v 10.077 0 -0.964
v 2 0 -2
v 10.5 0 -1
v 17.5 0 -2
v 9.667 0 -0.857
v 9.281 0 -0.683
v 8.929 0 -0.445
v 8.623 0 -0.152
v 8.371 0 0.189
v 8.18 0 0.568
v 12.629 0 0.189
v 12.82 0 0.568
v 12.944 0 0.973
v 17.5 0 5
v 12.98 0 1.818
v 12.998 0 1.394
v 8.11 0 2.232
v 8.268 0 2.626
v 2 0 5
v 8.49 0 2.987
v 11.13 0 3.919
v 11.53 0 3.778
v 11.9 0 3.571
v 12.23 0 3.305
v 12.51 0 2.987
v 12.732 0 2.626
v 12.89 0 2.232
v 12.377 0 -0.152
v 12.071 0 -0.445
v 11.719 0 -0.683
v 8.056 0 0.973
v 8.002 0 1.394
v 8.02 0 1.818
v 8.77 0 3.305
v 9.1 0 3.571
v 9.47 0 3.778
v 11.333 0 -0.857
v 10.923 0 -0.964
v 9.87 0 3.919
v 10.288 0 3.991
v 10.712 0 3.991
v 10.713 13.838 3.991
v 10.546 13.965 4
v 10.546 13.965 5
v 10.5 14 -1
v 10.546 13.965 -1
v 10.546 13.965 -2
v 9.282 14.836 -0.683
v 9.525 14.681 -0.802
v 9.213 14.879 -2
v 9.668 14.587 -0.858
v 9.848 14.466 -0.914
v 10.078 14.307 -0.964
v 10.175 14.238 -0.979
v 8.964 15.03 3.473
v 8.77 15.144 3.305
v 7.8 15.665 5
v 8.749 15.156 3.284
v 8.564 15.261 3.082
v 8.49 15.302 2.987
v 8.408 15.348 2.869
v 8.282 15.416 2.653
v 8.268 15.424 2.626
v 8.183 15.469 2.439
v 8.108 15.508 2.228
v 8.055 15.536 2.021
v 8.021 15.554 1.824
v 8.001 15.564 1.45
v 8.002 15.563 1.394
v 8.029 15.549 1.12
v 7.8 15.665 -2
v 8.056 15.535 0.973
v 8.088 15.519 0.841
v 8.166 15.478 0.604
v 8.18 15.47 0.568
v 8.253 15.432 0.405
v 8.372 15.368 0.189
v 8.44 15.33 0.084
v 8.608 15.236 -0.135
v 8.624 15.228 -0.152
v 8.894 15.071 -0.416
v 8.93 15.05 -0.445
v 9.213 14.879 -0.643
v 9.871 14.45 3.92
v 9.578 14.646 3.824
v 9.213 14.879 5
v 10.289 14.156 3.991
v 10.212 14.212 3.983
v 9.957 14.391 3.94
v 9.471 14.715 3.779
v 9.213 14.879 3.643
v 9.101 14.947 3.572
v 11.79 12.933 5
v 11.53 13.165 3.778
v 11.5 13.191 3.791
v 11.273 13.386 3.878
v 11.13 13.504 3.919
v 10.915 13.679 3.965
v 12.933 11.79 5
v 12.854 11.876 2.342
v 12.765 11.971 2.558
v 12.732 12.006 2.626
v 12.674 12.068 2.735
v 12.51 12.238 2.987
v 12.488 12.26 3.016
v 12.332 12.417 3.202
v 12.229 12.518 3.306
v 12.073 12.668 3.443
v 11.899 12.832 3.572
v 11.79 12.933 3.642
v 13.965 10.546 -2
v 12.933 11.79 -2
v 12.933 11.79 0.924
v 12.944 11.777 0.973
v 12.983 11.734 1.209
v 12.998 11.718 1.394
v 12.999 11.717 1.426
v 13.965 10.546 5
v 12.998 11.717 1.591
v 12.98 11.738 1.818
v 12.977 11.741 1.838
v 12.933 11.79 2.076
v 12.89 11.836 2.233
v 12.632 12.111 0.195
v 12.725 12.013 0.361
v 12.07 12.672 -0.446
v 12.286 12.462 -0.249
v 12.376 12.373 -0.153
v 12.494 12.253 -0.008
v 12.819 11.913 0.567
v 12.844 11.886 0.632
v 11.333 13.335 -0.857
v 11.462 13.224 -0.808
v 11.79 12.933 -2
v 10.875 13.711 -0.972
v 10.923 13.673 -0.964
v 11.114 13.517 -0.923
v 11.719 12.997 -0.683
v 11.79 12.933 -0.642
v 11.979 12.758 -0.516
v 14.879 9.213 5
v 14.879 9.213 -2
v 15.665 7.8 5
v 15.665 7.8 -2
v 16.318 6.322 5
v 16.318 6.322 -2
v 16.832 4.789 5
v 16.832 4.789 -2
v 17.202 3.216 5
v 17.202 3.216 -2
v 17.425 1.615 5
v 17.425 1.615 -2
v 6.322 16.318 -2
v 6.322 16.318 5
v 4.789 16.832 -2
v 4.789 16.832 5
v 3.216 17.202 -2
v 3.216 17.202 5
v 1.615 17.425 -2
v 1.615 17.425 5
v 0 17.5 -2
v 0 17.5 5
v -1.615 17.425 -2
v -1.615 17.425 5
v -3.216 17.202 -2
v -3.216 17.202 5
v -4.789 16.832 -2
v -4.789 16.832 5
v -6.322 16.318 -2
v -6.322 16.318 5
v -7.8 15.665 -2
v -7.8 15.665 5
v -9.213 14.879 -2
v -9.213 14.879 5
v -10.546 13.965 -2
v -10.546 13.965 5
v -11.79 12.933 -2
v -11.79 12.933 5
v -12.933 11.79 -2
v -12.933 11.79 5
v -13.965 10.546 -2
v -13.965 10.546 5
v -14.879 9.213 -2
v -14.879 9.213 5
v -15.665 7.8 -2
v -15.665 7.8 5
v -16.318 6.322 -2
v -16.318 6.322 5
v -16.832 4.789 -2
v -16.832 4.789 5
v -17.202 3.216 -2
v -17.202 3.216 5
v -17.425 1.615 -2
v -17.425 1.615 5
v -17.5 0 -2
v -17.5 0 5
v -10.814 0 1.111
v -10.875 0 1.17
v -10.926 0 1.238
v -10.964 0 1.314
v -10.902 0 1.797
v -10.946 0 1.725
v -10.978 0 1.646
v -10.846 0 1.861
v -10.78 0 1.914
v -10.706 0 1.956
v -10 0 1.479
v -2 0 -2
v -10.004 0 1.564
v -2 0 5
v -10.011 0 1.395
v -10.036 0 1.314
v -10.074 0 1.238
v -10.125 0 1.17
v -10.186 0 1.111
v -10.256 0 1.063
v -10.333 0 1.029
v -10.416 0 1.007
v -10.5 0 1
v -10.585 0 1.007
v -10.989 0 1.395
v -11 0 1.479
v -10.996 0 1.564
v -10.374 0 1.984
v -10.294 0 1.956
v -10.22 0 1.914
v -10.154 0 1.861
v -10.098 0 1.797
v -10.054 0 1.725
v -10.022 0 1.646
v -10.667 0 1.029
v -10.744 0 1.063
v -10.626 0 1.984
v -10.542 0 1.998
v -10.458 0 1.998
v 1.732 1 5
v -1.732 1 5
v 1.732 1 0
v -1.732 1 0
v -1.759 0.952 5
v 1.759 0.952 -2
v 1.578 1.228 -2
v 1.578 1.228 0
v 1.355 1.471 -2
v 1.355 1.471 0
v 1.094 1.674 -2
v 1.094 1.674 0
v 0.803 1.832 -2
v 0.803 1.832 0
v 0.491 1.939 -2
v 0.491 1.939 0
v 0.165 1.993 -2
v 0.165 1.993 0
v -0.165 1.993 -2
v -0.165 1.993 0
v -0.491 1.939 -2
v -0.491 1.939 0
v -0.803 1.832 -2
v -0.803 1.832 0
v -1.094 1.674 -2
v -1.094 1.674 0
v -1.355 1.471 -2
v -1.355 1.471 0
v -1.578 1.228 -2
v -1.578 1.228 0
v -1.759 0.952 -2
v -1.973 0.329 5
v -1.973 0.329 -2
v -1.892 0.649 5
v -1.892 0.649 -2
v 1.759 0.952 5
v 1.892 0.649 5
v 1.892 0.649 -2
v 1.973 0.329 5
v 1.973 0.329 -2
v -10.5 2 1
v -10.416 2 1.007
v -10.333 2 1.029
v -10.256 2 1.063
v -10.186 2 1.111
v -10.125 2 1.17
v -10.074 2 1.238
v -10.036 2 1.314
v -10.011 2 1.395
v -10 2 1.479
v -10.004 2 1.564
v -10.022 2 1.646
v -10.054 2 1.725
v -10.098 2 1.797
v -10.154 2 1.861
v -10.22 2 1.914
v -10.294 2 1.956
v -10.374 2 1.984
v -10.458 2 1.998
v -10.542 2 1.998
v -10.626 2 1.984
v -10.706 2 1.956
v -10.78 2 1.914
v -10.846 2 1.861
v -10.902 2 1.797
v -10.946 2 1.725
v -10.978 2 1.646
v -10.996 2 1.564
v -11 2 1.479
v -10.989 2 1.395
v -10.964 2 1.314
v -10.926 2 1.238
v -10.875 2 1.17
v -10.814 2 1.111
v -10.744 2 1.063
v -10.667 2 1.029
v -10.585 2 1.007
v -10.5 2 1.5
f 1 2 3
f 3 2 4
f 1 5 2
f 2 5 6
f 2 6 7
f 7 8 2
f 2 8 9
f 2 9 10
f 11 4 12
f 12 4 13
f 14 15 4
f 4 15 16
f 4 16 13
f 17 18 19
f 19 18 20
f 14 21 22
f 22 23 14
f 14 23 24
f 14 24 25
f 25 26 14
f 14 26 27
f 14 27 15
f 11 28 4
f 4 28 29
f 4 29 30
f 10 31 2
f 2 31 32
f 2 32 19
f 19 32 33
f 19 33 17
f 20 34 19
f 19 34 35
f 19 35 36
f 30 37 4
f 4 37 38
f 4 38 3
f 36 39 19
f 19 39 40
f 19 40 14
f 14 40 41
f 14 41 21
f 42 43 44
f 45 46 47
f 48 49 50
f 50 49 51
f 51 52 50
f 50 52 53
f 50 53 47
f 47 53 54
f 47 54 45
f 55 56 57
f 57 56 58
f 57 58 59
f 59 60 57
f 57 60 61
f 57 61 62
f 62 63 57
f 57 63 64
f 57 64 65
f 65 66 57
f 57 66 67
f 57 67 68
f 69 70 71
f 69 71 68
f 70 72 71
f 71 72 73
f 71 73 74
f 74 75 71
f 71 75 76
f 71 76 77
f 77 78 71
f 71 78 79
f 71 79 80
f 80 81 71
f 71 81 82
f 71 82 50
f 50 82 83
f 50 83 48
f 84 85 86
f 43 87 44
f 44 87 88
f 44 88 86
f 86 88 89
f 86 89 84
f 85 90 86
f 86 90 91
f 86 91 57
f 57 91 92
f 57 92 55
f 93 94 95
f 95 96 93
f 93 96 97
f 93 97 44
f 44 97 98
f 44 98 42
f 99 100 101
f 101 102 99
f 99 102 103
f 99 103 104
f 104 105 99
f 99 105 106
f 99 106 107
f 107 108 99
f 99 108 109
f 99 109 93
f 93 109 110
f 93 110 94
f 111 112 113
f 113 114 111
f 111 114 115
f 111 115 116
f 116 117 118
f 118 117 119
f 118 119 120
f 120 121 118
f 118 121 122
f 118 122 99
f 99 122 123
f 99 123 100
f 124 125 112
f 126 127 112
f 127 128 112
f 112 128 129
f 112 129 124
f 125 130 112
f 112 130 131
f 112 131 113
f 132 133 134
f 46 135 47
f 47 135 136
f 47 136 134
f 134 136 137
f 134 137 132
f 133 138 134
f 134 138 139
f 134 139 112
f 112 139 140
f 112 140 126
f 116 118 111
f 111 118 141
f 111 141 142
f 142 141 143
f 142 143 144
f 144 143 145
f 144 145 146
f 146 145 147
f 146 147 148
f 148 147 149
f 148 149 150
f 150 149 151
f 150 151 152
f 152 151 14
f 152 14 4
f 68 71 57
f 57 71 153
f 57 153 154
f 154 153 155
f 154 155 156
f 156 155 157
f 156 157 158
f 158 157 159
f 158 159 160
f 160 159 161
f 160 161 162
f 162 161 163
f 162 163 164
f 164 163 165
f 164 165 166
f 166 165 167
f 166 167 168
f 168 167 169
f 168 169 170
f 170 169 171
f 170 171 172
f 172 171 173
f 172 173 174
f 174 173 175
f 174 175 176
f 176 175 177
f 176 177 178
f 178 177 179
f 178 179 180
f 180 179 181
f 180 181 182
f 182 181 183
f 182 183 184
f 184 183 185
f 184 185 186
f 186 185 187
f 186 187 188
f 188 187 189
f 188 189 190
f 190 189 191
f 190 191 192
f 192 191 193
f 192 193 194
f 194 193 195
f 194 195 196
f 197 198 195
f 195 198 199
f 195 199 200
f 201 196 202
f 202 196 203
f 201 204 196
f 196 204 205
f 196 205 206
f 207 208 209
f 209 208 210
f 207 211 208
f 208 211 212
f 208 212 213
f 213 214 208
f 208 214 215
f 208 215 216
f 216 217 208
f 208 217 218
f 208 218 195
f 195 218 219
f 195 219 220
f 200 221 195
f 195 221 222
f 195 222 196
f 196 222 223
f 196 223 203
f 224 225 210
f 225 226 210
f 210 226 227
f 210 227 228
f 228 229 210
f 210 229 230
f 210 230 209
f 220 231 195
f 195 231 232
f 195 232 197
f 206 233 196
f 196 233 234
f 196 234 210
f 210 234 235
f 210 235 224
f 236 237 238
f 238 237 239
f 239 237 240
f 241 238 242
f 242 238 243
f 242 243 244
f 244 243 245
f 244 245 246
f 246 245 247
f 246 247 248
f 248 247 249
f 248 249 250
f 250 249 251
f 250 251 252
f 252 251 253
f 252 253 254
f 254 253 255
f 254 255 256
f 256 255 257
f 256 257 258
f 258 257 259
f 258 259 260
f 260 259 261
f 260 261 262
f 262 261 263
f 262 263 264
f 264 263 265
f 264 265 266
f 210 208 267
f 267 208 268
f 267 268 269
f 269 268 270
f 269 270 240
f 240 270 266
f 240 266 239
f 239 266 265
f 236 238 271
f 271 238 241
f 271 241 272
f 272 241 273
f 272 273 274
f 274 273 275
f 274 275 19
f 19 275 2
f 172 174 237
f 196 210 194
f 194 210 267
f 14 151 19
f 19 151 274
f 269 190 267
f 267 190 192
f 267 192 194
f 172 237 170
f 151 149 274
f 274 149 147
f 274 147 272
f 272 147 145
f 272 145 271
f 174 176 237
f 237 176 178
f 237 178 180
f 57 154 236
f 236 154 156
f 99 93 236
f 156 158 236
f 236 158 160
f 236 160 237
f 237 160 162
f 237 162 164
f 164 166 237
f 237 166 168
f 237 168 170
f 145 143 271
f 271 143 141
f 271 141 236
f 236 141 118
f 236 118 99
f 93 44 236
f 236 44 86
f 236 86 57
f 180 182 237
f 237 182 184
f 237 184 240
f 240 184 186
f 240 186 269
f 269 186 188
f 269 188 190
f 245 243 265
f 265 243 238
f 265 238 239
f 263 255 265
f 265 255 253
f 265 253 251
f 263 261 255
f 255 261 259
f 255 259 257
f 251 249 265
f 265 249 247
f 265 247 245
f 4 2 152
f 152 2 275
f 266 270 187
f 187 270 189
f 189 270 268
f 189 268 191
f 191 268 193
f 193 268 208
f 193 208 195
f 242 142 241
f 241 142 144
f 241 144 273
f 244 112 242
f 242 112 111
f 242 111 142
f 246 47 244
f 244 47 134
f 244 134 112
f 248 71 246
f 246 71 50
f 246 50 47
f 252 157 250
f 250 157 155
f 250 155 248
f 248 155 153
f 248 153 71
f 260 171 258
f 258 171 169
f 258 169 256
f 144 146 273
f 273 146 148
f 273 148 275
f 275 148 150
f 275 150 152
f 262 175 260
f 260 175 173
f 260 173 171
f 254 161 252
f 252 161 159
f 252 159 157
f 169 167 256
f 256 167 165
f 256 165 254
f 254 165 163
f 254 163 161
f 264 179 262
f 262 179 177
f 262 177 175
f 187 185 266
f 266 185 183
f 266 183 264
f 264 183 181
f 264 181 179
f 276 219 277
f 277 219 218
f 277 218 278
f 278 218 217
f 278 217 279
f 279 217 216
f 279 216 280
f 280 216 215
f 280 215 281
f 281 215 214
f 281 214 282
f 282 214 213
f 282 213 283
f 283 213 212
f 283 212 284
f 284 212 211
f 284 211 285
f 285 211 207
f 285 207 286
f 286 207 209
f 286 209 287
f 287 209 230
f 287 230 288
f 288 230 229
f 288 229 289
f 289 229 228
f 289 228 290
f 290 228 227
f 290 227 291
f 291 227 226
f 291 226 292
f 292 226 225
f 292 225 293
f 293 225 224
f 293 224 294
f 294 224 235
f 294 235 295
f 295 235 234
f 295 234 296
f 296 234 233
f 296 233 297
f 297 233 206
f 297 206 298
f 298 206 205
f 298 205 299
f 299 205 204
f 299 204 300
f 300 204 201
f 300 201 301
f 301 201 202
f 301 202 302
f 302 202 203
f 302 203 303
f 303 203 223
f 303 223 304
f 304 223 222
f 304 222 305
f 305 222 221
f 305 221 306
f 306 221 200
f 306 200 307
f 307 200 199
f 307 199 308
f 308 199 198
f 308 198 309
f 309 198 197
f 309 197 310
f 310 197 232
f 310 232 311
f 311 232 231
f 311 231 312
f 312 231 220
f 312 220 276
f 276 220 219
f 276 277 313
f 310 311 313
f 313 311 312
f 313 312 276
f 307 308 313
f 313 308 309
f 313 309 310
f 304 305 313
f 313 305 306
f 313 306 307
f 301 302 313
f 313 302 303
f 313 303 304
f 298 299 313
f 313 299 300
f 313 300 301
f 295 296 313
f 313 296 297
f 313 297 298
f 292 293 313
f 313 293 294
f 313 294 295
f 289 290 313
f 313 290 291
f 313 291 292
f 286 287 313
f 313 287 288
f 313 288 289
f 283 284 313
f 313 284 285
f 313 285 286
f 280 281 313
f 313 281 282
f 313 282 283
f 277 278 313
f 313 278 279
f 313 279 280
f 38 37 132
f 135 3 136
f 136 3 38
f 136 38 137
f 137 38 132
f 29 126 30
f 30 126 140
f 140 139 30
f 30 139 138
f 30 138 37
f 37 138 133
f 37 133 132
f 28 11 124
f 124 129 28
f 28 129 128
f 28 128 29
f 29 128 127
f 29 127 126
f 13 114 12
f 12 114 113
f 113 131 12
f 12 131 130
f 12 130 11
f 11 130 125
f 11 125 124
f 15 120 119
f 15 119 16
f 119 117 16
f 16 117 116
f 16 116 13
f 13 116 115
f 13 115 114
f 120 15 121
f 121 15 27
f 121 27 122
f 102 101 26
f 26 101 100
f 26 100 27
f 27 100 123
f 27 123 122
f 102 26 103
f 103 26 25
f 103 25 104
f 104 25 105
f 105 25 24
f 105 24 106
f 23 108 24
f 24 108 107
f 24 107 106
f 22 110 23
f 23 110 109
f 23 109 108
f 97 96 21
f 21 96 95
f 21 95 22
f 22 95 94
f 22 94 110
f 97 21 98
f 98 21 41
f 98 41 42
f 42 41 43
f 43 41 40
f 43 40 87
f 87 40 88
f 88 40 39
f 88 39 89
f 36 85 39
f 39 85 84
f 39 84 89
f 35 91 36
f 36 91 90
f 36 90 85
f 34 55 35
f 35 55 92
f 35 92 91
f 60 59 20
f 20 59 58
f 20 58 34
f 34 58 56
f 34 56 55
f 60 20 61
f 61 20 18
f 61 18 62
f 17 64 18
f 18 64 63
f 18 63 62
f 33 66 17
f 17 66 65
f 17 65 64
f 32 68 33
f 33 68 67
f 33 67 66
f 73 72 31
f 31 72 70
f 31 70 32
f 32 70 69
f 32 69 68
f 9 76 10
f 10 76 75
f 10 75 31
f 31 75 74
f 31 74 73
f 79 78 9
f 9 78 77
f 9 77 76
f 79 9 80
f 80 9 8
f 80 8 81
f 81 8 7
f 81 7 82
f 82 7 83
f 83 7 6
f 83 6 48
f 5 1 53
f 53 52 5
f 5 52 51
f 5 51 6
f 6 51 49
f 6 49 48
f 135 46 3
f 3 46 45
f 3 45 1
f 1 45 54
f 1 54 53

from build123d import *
from build123d.topology import SkipClean

# Parameters (mm, degrees)
BOSS_EXTRU_1_DEPTH      = 5
BOSS_EXTRU_3_START      = 2
BOSS_EXTRU_3_DEPTH      = 2
ESQUISSE5_R             = 0.5
ESQUISSE5_R_2           = 2.5
ENL_V_MAT_EXTRU_1_DEPTH = 2
ESQUISSE7_R             = 2.5
ENL_V_MAT_EXTRU_2_DEPTH = 24.906066176


with BuildPart() as part:
    # Esquisse1 → Boss.-Extru.1 (new body)
    with BuildSketch(Plane.XY):
        with BuildLine():
            Line((-1.732050808, 1), (1.732050808, 1))
            ThreePointArc((1.732050808, 1), (1.931851653, 0.51763809), (2, 0))
            Line((2, 0), (17.5, 0))
            ThreePointArc((17.5, 0), (0, 17.5), (-17.5, 0))
            Line((-17.5, 0), (-2, 0))
            ThreePointArc((-2, 0), (-1.931851653, 0.51763809), (-1.732050808, 1))
        make_face()
    extrude(amount=BOSS_EXTRU_1_DEPTH)

    # Esquisse3 → Boss.-Extru.3 (add)
    with SkipClean():  # the faces are left unmerged after this step: merging them gives an invalid solid
        with BuildSketch(Plane(origin=(0, 0, 0), x_dir=(-1, 0, 0), z_dir=(0, 0, -1)).offset(BOSS_EXTRU_3_START)):
            with BuildLine():
                Line((0, 2), (0, 17.5))
                ThreePointArc((0, 17.5), (-12.374368671, 12.374368671), (-17.5, 0))
                Line((-17.5, 0), (-2, 0))
                ThreePointArc((-2, 0), (-1.931851653, 0.51763809), (-1.732050808, 1))
                ThreePointArc((-1.732050808, 1), (-1, 1.732050808), (0, 2))
            make_face()
            with BuildLine():
                ThreePointArc((17.5, 0), (12.374368671, 12.374368671), (0, 17.5))
                Line((0, 17.5), (0, 2))
                ThreePointArc((0, 2), (1, 1.732050808), (1.732050808, 1))
                ThreePointArc((1.732050808, 1), (1.931851653, 0.51763809), (2, 0))
                Line((2, 0), (17.5, 0))
            make_face()
        extrude(amount=-BOSS_EXTRU_3_DEPTH)

    # Esquisse5 → Enlèv. mat.-Extru.1 (cut)
    with SkipClean():  # the faces are left unmerged after this step: merging them gives an invalid solid
        with BuildSketch(Plane.XZ):
            with Locations(Location((-10.5, 1.5, 0), (0, 0, 270))):
                Circle(ESQUISSE5_R)
            with Locations(Location((10.5, 1.5, 0), (0, 0, 270))):
                Circle(ESQUISSE5_R_2)
        extrude(amount=-ENL_V_MAT_EXTRU_1_DEPTH, mode=Mode.SUBTRACT)

    # Esquisse7 → Enlèv. mat.-Extru.2 (cut, through all)
    with SkipClean():  # the faces are left unmerged after this step: merging them gives an invalid solid
        with BuildSketch(Plane.XZ.offset(-2)):
            with Locations(Location((10.5, 1.5, 0), (0, 0, 270))):
                Circle(ESQUISSE7_R)
        extrude(amount=-ENL_V_MAT_EXTRU_2_DEPTH, mode=Mode.SUBTRACT)


solid = part.part
